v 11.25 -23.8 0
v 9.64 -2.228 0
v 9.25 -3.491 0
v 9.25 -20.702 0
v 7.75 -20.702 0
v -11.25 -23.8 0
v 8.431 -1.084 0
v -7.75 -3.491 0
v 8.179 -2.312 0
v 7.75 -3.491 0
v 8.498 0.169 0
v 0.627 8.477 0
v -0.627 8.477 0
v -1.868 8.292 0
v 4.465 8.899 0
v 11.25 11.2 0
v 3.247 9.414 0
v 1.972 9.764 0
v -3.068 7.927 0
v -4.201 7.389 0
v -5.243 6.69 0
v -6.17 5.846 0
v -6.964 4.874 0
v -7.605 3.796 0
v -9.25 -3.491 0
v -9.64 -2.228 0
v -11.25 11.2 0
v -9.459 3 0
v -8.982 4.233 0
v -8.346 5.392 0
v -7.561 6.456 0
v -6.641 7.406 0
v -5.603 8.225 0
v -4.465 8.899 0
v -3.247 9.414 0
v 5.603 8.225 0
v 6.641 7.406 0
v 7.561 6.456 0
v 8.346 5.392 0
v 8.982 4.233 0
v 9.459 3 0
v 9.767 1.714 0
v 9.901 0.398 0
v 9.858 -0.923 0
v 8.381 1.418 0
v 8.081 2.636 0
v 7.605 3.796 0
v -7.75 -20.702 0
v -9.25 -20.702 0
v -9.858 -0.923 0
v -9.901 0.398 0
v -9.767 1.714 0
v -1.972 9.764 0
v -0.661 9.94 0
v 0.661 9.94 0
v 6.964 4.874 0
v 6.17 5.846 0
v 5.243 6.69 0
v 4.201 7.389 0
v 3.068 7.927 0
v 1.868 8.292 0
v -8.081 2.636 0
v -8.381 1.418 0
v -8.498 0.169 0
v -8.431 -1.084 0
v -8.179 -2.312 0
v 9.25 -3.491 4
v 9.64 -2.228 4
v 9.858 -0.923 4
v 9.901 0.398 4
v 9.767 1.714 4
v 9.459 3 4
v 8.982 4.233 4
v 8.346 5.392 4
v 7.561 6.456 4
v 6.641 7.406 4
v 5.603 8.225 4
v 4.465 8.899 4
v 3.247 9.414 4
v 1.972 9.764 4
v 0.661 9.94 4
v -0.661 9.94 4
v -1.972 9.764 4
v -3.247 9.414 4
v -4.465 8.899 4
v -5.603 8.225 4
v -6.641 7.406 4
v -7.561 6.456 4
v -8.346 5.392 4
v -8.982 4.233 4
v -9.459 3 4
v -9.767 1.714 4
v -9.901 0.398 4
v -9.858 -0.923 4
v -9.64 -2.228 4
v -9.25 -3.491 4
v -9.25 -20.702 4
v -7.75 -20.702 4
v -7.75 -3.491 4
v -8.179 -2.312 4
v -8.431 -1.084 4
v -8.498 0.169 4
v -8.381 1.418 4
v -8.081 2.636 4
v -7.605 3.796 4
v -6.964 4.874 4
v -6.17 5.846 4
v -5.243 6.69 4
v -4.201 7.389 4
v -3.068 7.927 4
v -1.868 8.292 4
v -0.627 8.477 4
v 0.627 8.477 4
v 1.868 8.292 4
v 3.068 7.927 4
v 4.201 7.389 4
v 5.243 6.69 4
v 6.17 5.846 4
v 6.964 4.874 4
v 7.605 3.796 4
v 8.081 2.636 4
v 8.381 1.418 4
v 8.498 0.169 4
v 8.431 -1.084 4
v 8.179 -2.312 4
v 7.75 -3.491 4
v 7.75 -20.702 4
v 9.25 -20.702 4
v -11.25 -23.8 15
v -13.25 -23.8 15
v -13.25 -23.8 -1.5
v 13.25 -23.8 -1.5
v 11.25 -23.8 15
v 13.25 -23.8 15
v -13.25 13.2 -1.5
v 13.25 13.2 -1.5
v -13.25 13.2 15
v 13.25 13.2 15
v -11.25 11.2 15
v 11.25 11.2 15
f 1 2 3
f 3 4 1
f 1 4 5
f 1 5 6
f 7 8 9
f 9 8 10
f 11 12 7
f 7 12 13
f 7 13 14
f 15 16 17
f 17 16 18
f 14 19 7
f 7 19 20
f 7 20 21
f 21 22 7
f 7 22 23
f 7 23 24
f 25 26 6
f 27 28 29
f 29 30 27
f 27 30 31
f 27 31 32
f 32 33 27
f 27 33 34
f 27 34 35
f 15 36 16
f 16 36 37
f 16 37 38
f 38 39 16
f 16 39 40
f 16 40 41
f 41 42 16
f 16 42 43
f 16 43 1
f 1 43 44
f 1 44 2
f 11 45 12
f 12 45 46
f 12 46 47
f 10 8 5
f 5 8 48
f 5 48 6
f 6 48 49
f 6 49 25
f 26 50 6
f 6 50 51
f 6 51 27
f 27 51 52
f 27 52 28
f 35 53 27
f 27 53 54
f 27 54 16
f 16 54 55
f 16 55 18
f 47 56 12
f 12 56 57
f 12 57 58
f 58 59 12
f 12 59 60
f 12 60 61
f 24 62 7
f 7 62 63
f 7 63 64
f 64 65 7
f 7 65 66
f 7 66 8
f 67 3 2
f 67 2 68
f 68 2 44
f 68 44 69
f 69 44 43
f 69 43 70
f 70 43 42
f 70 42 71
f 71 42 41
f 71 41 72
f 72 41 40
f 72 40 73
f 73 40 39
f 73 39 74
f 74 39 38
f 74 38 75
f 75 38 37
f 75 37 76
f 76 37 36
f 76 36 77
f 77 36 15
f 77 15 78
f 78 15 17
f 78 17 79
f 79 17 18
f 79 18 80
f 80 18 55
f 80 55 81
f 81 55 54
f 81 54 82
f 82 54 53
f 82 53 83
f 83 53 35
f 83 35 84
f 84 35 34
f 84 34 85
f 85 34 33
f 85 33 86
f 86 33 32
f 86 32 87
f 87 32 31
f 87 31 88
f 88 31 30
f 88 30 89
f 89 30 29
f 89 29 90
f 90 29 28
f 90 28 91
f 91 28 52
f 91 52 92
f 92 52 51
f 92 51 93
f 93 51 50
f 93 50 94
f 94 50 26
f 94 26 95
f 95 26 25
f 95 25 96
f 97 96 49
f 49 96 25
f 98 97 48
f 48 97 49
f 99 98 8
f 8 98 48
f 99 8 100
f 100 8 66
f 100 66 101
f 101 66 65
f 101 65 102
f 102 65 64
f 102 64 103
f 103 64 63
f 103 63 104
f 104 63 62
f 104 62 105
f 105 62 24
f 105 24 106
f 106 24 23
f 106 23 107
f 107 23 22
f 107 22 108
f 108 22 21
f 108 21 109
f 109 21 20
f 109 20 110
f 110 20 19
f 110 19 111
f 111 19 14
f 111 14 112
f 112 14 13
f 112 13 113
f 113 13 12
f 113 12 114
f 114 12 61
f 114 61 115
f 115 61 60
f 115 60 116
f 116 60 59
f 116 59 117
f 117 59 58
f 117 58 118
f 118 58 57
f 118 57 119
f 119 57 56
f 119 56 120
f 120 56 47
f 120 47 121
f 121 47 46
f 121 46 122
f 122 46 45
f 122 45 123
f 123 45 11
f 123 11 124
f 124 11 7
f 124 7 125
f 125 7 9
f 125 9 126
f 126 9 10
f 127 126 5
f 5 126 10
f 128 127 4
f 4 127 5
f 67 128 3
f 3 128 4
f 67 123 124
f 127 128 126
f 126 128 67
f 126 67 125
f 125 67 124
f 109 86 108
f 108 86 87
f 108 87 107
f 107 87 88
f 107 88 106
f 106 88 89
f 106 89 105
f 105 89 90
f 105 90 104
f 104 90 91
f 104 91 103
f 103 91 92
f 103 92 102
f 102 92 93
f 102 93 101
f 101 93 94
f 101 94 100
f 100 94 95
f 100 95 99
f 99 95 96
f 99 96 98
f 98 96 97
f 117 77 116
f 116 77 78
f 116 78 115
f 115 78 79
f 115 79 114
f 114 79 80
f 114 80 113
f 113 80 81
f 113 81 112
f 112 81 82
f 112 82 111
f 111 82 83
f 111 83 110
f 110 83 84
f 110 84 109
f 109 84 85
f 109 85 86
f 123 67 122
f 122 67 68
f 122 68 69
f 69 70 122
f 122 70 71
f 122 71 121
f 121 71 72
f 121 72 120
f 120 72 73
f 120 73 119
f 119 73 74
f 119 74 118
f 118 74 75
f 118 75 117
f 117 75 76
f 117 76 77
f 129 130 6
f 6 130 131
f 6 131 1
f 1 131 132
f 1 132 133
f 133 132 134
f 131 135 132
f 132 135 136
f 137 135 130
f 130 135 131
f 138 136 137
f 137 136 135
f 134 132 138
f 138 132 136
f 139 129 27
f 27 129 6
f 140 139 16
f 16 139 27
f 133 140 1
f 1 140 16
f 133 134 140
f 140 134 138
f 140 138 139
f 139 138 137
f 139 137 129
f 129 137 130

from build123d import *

# Parameters (mm, degrees)
BOSS_EXTRUDE1_DEPTH = 4
SKETCH3_W           = 22.5
SKETCH3_H           = 35
BOSS_EXTRUDE2_DEPTH = 1.5
BOSS_EXTRUDE5_DEPTH = 15
BOSS_EXTRUDE6_DEPTH = 1.5


with BuildPart() as part:
    # Sketch1 → Boss-Extrude1 (new body)
    with BuildSketch(Plane.XY):
        with BuildLine():
            Line((-7.75, -19.202403031), (-7.75, -3.491060011))
            ThreePointArc((-7.75, -3.491060011), (0, 8.5), (7.75, -3.491060011))
            Line((7.75, -3.491060011), (7.75, -19.202403031))
            Line((7.75, -19.202403031), (7.75, -20.702403031))
            Line((7.75, -20.702403031), (9.25, -20.702403031))
            Line((9.25, -20.702403031), (9.25, -3.491060011))
            ThreePointArc((9.25, -3.491060011), (0, 9.961709327), (-9.25, -3.491060011))
            Line((-9.25, -3.491060011), (-9.25, -20.702403031))
            Line((-9.25, -20.702403031), (-7.75, -20.702403031))
            Line((-7.75, -20.702403031), (-7.75, -19.202403031))
        make_face()
    extrude(amount=BOSS_EXTRUDE1_DEPTH)

    # Sketch3 → Boss-Extrude2 (add)
    with BuildSketch(Plane.XY):
        with Locations((0, -6.3)):
            Rectangle(SKETCH3_W, SKETCH3_H)
    extrude(amount=-BOSS_EXTRUDE2_DEPTH)



with BuildPart() as body_2:
    # Sketch9 → Boss-Extrude5 (new body)
    with BuildSketch(Plane.XY):
        Polygon((-13.25, 13.2), (13.25, 13.2), (13.25, -23.8), (11.25, -23.8), (11.25, 11.2), (-11.25, 11.2), (-11.25, -23.8), (-13.25, -23.8), align=None)
    extrude(amount=BOSS_EXTRUDE5_DEPTH)


with BuildPart() as part_1:
    add(part.part)

    add(body_2.part)  # Boss-Extrude6 merges body 2
    # Sketch10 → Boss-Extrude6 (add)
    with BuildSketch(Plane.XY):
        Polygon((-13.25, 13.2), (13.25, 13.2), (13.25, -23.8), (11.25, -23.8), (11.25, 11.2), (-11.25, 11.2), (-11.25, -23.8), (-13.25, -23.8), align=None)
    extrude(amount=-BOSS_EXTRUDE6_DEPTH)


solid = part_1.part
